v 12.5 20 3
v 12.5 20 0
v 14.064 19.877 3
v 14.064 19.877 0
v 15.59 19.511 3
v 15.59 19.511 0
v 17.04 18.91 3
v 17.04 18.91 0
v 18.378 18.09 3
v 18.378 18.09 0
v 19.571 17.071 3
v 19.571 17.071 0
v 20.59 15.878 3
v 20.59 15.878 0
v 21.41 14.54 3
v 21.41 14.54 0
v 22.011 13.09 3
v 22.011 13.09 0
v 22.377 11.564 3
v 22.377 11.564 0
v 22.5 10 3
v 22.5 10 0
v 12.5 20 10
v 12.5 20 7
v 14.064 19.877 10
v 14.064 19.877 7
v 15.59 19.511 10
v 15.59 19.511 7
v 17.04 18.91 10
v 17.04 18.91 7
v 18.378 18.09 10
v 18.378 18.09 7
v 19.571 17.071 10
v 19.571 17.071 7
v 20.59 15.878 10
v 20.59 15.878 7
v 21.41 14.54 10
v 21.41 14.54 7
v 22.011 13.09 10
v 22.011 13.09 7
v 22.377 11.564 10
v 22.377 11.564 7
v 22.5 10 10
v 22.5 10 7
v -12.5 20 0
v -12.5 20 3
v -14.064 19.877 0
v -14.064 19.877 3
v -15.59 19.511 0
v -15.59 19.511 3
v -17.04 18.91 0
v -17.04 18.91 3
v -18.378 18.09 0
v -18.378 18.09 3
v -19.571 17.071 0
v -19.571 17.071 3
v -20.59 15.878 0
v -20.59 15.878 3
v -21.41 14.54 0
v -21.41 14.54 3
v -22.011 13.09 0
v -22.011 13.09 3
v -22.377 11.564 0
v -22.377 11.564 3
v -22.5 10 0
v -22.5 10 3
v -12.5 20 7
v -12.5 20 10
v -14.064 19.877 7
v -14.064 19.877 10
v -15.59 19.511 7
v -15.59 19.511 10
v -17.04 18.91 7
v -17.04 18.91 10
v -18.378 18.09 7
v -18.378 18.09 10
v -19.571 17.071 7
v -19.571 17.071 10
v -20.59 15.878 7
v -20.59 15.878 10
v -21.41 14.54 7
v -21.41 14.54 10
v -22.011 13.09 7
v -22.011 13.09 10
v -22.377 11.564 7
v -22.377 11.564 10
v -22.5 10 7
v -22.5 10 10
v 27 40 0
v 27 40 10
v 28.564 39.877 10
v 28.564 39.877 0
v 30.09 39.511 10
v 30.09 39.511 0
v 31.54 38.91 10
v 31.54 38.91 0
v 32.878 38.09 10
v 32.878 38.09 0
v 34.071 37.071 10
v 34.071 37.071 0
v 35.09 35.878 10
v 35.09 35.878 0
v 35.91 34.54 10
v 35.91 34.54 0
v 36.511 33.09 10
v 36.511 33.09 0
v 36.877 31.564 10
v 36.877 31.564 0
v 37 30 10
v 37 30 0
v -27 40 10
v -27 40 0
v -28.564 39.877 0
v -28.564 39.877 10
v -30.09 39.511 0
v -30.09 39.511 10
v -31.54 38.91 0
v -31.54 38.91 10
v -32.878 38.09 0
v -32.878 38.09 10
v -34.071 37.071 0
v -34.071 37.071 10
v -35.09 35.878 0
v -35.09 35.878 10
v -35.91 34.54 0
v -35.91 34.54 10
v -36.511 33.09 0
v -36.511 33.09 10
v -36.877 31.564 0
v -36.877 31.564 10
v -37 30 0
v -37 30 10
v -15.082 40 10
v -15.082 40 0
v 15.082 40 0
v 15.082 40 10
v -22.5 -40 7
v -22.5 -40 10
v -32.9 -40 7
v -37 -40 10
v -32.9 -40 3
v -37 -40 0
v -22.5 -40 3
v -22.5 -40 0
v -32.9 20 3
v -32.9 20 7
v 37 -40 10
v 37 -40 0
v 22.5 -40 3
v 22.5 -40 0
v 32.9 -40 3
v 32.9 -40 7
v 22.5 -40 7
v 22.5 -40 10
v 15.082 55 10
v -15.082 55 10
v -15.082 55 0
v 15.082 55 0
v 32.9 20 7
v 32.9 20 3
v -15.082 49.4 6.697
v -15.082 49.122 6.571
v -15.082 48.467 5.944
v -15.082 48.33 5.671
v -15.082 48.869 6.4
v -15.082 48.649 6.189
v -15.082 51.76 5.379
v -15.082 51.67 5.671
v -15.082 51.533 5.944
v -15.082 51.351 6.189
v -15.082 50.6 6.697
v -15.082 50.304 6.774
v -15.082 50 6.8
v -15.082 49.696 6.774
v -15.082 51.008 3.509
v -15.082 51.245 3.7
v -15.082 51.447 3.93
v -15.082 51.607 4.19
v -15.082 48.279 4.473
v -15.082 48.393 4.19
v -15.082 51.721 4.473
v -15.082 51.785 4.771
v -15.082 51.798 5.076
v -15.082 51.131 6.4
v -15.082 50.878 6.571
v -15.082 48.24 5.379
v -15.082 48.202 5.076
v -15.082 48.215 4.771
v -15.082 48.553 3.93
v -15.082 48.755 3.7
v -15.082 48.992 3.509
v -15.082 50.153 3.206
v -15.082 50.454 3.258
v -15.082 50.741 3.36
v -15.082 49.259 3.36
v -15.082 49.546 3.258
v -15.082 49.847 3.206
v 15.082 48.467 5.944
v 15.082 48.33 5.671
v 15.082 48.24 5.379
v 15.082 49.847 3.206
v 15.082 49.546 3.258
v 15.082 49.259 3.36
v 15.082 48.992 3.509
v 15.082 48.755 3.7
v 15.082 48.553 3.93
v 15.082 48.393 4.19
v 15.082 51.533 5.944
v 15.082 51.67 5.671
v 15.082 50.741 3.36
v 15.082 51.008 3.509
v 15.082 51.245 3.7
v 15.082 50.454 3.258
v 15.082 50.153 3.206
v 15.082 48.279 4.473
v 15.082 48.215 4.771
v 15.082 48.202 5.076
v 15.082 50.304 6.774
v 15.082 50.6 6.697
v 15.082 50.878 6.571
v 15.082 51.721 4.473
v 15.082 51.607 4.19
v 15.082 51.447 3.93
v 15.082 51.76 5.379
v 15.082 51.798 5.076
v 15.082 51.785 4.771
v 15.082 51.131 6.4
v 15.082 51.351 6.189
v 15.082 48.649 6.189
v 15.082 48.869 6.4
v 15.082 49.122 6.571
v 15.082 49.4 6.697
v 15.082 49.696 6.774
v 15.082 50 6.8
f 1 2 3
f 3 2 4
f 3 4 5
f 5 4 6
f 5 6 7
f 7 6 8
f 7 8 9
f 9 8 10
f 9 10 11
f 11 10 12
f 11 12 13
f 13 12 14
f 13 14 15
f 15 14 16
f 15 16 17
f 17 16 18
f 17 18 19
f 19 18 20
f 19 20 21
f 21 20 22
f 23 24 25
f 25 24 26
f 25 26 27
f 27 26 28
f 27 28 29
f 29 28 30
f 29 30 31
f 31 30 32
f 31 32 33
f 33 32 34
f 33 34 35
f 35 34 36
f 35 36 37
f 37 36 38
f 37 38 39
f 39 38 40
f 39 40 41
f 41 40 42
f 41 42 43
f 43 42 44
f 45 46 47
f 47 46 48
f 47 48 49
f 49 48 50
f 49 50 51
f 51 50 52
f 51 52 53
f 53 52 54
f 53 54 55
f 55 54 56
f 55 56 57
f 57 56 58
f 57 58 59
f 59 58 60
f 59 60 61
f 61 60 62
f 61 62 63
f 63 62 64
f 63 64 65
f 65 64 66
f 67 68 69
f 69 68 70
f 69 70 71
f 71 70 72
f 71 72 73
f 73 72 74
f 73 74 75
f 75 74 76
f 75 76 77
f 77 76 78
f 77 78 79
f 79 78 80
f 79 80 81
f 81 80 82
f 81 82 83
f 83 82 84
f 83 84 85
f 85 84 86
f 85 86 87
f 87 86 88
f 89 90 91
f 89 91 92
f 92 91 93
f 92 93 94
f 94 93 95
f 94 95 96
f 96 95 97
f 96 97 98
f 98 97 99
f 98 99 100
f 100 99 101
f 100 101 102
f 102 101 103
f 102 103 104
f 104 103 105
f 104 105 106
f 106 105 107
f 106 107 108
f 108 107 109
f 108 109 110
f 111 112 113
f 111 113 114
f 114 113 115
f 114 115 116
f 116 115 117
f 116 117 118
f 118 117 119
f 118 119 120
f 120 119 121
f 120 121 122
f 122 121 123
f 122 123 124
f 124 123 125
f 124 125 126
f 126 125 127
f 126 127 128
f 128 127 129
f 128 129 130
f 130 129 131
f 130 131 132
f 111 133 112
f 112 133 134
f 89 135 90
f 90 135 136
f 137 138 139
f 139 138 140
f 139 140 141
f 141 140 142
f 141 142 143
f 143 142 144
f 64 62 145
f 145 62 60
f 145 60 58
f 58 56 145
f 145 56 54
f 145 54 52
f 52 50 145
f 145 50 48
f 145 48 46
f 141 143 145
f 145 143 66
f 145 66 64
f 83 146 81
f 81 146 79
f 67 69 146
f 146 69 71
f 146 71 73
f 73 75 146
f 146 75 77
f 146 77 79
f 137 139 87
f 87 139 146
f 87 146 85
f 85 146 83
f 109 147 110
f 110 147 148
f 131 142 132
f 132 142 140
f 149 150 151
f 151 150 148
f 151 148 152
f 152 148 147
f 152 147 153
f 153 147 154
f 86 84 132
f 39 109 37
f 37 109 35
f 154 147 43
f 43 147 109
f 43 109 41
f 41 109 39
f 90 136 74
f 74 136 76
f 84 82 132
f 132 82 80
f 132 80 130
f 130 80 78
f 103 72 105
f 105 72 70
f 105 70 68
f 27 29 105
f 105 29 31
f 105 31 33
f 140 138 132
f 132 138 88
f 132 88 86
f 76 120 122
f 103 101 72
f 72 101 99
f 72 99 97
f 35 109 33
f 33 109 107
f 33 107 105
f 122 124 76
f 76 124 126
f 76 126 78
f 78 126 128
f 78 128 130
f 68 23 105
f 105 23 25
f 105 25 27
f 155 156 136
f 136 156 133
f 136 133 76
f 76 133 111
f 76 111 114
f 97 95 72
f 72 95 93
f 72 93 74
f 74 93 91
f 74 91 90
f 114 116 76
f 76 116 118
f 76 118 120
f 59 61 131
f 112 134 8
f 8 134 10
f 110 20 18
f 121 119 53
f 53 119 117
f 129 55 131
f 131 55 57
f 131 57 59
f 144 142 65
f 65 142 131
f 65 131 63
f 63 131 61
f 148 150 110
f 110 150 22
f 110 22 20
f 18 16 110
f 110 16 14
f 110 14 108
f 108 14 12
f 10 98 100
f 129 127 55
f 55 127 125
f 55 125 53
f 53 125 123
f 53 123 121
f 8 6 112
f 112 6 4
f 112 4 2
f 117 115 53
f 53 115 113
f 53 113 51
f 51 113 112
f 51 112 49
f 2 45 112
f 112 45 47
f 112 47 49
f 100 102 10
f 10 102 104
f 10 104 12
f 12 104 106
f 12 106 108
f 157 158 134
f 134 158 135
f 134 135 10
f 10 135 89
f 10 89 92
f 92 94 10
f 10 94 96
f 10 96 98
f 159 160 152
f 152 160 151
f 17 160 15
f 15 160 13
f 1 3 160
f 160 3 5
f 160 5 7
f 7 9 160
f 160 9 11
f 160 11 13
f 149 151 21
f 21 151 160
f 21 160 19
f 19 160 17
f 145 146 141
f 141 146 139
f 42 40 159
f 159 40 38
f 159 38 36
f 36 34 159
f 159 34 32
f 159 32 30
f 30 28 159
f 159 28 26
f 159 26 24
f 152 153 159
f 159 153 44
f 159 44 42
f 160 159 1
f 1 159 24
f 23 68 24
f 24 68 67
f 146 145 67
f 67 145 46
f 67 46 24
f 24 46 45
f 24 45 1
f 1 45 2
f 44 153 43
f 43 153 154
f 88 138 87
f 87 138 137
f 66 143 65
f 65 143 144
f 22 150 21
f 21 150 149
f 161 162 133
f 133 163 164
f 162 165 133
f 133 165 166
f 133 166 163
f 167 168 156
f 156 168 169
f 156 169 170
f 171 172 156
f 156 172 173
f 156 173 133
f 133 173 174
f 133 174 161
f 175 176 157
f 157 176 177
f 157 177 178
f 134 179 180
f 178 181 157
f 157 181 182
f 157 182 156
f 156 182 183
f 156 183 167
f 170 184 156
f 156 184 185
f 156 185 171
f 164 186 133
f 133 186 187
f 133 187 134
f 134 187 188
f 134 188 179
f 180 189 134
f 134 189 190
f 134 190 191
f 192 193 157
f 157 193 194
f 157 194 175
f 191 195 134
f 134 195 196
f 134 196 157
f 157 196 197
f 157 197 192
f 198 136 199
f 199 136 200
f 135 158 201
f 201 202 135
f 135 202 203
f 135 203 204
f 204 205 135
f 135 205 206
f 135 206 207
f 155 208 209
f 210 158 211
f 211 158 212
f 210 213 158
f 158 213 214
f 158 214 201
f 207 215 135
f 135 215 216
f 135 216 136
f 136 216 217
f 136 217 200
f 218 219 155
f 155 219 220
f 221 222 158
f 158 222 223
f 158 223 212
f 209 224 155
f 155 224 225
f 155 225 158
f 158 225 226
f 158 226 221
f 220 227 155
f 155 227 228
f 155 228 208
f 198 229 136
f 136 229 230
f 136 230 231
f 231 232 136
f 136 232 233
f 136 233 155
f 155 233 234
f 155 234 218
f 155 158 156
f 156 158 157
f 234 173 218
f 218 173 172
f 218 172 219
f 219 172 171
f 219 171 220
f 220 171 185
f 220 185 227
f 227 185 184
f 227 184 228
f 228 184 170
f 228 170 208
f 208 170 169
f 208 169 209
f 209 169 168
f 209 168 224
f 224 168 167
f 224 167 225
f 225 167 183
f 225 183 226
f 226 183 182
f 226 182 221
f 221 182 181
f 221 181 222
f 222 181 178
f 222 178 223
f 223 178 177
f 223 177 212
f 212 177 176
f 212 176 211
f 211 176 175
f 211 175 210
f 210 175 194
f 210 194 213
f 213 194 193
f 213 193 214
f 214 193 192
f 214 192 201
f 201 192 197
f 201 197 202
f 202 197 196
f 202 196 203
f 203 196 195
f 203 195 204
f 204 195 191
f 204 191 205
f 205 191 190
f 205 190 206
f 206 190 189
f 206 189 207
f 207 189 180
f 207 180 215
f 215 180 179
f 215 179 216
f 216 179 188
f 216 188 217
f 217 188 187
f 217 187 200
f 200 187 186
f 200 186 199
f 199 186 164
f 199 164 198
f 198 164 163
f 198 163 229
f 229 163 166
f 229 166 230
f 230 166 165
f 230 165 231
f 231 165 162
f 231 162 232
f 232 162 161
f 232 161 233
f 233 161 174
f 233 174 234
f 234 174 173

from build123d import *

# Parameters (mm, degrees)
CROQUIS1_W              = 74
CROQUIS1_H              = 80
SALIENTE_EXTRUIR1_DEPTH = 10
CROQUIS2_W              = 65.8
CROQUIS2_H              = 4
CORTAR_EXTRUIR1_DEPTH   = 60
CROQUIS3_W              = 45
CROQUIS3_H              = 60
CORTAR_EXTRUIR3_DEPTH   = 39
CROQUIS6_W              = 30.164087926
CROQUIS6_H              = 10
SALIENTE_EXTRUIR3_DEPTH = 15
REDONDEO1_R             = 10
REDONDEO2_R             = 10
CROQUIS7_R              = 1.8
CORTAR_EXTRUIR5_DEPTH   = 32
REDONDEO3_R             = 10
REDONDEO4_R             = 10
REDONDEO5_R             = 10
REDONDEO6_R             = 10


with BuildPart() as part:
    # Croquis1 → Saliente-Extruir1 (new body)
    with BuildSketch(Plane.XY):
        Rectangle(CROQUIS1_W, CROQUIS1_H)
    extrude(amount=SALIENTE_EXTRUIR1_DEPTH)

    # Croquis2 → Cortar-Extruir1 (cut)
    with BuildSketch(Plane.XZ.offset(40)):
        with Locations((0, 5)):
            Rectangle(CROQUIS2_W, CROQUIS2_H)
    extrude(amount=-CORTAR_EXTRUIR1_DEPTH, mode=Mode.SUBTRACT)

    # Croquis3 → Cortar-Extruir3 (cut)
    with BuildSketch(Plane.XY.offset(10)):
        with Locations((0, -10)):
            Rectangle(CROQUIS3_W, CROQUIS3_H)
    extrude(amount=-CORTAR_EXTRUIR3_DEPTH, mode=Mode.SUBTRACT)

    # Croquis6 → Saliente-Extruir3 (add)
    with BuildSketch(Plane(origin=(0, 40, 0), x_dir=(1, 0, 0), z_dir=(0, 1, 0))):
        with Locations((0, -5)):
            Rectangle(CROQUIS6_W, CROQUIS6_H)
    extrude(amount=SALIENTE_EXTRUIR3_DEPTH)

    # Redondeo1
    redondeo1_edges = [part.edges().sort_by_distance(p)[0] for p in [
        (-37, 40, 5),
    ]]
    fillet(redondeo1_edges, radius=REDONDEO1_R)

    # Redondeo2
    redondeo2_edges = [part.edges().sort_by_distance(p)[0] for p in [
        (37, 40, 5),
    ]]
    fillet(redondeo2_edges, radius=REDONDEO2_R)

    # Croquis7 → Cortar-Extruir5 (cut)
    with BuildSketch(Plane.ZY.offset(15.082043963)):
        with Locations((5, 50)):
            Circle(CROQUIS7_R)
    extrude(amount=-CORTAR_EXTRUIR5_DEPTH, mode=Mode.SUBTRACT)

    # Redondeo3
    redondeo3_edges = [part.edges().sort_by_distance(p)[0] for p in [
        (-22.5, 20, 8.5),
    ]]
    fillet(redondeo3_edges, radius=REDONDEO3_R)

    # Redondeo4
    redondeo4_edges = [part.edges().sort_by_distance(p)[0] for p in [
        (-22.5, 20, 1.5),
    ]]
    fillet(redondeo4_edges, radius=REDONDEO4_R)

    # Redondeo5
    redondeo5_edges = [part.edges().sort_by_distance(p)[0] for p in [
        (22.5, 20, 8.5),
    ]]
    fillet(redondeo5_edges, radius=REDONDEO5_R)

    # Redondeo6
    redondeo6_edges = [part.edges().sort_by_distance(p)[0] for p in [
        (22.5, 20, 1.5),
    ]]
    fillet(redondeo6_edges, radius=REDONDEO6_R)


solid = part.part
